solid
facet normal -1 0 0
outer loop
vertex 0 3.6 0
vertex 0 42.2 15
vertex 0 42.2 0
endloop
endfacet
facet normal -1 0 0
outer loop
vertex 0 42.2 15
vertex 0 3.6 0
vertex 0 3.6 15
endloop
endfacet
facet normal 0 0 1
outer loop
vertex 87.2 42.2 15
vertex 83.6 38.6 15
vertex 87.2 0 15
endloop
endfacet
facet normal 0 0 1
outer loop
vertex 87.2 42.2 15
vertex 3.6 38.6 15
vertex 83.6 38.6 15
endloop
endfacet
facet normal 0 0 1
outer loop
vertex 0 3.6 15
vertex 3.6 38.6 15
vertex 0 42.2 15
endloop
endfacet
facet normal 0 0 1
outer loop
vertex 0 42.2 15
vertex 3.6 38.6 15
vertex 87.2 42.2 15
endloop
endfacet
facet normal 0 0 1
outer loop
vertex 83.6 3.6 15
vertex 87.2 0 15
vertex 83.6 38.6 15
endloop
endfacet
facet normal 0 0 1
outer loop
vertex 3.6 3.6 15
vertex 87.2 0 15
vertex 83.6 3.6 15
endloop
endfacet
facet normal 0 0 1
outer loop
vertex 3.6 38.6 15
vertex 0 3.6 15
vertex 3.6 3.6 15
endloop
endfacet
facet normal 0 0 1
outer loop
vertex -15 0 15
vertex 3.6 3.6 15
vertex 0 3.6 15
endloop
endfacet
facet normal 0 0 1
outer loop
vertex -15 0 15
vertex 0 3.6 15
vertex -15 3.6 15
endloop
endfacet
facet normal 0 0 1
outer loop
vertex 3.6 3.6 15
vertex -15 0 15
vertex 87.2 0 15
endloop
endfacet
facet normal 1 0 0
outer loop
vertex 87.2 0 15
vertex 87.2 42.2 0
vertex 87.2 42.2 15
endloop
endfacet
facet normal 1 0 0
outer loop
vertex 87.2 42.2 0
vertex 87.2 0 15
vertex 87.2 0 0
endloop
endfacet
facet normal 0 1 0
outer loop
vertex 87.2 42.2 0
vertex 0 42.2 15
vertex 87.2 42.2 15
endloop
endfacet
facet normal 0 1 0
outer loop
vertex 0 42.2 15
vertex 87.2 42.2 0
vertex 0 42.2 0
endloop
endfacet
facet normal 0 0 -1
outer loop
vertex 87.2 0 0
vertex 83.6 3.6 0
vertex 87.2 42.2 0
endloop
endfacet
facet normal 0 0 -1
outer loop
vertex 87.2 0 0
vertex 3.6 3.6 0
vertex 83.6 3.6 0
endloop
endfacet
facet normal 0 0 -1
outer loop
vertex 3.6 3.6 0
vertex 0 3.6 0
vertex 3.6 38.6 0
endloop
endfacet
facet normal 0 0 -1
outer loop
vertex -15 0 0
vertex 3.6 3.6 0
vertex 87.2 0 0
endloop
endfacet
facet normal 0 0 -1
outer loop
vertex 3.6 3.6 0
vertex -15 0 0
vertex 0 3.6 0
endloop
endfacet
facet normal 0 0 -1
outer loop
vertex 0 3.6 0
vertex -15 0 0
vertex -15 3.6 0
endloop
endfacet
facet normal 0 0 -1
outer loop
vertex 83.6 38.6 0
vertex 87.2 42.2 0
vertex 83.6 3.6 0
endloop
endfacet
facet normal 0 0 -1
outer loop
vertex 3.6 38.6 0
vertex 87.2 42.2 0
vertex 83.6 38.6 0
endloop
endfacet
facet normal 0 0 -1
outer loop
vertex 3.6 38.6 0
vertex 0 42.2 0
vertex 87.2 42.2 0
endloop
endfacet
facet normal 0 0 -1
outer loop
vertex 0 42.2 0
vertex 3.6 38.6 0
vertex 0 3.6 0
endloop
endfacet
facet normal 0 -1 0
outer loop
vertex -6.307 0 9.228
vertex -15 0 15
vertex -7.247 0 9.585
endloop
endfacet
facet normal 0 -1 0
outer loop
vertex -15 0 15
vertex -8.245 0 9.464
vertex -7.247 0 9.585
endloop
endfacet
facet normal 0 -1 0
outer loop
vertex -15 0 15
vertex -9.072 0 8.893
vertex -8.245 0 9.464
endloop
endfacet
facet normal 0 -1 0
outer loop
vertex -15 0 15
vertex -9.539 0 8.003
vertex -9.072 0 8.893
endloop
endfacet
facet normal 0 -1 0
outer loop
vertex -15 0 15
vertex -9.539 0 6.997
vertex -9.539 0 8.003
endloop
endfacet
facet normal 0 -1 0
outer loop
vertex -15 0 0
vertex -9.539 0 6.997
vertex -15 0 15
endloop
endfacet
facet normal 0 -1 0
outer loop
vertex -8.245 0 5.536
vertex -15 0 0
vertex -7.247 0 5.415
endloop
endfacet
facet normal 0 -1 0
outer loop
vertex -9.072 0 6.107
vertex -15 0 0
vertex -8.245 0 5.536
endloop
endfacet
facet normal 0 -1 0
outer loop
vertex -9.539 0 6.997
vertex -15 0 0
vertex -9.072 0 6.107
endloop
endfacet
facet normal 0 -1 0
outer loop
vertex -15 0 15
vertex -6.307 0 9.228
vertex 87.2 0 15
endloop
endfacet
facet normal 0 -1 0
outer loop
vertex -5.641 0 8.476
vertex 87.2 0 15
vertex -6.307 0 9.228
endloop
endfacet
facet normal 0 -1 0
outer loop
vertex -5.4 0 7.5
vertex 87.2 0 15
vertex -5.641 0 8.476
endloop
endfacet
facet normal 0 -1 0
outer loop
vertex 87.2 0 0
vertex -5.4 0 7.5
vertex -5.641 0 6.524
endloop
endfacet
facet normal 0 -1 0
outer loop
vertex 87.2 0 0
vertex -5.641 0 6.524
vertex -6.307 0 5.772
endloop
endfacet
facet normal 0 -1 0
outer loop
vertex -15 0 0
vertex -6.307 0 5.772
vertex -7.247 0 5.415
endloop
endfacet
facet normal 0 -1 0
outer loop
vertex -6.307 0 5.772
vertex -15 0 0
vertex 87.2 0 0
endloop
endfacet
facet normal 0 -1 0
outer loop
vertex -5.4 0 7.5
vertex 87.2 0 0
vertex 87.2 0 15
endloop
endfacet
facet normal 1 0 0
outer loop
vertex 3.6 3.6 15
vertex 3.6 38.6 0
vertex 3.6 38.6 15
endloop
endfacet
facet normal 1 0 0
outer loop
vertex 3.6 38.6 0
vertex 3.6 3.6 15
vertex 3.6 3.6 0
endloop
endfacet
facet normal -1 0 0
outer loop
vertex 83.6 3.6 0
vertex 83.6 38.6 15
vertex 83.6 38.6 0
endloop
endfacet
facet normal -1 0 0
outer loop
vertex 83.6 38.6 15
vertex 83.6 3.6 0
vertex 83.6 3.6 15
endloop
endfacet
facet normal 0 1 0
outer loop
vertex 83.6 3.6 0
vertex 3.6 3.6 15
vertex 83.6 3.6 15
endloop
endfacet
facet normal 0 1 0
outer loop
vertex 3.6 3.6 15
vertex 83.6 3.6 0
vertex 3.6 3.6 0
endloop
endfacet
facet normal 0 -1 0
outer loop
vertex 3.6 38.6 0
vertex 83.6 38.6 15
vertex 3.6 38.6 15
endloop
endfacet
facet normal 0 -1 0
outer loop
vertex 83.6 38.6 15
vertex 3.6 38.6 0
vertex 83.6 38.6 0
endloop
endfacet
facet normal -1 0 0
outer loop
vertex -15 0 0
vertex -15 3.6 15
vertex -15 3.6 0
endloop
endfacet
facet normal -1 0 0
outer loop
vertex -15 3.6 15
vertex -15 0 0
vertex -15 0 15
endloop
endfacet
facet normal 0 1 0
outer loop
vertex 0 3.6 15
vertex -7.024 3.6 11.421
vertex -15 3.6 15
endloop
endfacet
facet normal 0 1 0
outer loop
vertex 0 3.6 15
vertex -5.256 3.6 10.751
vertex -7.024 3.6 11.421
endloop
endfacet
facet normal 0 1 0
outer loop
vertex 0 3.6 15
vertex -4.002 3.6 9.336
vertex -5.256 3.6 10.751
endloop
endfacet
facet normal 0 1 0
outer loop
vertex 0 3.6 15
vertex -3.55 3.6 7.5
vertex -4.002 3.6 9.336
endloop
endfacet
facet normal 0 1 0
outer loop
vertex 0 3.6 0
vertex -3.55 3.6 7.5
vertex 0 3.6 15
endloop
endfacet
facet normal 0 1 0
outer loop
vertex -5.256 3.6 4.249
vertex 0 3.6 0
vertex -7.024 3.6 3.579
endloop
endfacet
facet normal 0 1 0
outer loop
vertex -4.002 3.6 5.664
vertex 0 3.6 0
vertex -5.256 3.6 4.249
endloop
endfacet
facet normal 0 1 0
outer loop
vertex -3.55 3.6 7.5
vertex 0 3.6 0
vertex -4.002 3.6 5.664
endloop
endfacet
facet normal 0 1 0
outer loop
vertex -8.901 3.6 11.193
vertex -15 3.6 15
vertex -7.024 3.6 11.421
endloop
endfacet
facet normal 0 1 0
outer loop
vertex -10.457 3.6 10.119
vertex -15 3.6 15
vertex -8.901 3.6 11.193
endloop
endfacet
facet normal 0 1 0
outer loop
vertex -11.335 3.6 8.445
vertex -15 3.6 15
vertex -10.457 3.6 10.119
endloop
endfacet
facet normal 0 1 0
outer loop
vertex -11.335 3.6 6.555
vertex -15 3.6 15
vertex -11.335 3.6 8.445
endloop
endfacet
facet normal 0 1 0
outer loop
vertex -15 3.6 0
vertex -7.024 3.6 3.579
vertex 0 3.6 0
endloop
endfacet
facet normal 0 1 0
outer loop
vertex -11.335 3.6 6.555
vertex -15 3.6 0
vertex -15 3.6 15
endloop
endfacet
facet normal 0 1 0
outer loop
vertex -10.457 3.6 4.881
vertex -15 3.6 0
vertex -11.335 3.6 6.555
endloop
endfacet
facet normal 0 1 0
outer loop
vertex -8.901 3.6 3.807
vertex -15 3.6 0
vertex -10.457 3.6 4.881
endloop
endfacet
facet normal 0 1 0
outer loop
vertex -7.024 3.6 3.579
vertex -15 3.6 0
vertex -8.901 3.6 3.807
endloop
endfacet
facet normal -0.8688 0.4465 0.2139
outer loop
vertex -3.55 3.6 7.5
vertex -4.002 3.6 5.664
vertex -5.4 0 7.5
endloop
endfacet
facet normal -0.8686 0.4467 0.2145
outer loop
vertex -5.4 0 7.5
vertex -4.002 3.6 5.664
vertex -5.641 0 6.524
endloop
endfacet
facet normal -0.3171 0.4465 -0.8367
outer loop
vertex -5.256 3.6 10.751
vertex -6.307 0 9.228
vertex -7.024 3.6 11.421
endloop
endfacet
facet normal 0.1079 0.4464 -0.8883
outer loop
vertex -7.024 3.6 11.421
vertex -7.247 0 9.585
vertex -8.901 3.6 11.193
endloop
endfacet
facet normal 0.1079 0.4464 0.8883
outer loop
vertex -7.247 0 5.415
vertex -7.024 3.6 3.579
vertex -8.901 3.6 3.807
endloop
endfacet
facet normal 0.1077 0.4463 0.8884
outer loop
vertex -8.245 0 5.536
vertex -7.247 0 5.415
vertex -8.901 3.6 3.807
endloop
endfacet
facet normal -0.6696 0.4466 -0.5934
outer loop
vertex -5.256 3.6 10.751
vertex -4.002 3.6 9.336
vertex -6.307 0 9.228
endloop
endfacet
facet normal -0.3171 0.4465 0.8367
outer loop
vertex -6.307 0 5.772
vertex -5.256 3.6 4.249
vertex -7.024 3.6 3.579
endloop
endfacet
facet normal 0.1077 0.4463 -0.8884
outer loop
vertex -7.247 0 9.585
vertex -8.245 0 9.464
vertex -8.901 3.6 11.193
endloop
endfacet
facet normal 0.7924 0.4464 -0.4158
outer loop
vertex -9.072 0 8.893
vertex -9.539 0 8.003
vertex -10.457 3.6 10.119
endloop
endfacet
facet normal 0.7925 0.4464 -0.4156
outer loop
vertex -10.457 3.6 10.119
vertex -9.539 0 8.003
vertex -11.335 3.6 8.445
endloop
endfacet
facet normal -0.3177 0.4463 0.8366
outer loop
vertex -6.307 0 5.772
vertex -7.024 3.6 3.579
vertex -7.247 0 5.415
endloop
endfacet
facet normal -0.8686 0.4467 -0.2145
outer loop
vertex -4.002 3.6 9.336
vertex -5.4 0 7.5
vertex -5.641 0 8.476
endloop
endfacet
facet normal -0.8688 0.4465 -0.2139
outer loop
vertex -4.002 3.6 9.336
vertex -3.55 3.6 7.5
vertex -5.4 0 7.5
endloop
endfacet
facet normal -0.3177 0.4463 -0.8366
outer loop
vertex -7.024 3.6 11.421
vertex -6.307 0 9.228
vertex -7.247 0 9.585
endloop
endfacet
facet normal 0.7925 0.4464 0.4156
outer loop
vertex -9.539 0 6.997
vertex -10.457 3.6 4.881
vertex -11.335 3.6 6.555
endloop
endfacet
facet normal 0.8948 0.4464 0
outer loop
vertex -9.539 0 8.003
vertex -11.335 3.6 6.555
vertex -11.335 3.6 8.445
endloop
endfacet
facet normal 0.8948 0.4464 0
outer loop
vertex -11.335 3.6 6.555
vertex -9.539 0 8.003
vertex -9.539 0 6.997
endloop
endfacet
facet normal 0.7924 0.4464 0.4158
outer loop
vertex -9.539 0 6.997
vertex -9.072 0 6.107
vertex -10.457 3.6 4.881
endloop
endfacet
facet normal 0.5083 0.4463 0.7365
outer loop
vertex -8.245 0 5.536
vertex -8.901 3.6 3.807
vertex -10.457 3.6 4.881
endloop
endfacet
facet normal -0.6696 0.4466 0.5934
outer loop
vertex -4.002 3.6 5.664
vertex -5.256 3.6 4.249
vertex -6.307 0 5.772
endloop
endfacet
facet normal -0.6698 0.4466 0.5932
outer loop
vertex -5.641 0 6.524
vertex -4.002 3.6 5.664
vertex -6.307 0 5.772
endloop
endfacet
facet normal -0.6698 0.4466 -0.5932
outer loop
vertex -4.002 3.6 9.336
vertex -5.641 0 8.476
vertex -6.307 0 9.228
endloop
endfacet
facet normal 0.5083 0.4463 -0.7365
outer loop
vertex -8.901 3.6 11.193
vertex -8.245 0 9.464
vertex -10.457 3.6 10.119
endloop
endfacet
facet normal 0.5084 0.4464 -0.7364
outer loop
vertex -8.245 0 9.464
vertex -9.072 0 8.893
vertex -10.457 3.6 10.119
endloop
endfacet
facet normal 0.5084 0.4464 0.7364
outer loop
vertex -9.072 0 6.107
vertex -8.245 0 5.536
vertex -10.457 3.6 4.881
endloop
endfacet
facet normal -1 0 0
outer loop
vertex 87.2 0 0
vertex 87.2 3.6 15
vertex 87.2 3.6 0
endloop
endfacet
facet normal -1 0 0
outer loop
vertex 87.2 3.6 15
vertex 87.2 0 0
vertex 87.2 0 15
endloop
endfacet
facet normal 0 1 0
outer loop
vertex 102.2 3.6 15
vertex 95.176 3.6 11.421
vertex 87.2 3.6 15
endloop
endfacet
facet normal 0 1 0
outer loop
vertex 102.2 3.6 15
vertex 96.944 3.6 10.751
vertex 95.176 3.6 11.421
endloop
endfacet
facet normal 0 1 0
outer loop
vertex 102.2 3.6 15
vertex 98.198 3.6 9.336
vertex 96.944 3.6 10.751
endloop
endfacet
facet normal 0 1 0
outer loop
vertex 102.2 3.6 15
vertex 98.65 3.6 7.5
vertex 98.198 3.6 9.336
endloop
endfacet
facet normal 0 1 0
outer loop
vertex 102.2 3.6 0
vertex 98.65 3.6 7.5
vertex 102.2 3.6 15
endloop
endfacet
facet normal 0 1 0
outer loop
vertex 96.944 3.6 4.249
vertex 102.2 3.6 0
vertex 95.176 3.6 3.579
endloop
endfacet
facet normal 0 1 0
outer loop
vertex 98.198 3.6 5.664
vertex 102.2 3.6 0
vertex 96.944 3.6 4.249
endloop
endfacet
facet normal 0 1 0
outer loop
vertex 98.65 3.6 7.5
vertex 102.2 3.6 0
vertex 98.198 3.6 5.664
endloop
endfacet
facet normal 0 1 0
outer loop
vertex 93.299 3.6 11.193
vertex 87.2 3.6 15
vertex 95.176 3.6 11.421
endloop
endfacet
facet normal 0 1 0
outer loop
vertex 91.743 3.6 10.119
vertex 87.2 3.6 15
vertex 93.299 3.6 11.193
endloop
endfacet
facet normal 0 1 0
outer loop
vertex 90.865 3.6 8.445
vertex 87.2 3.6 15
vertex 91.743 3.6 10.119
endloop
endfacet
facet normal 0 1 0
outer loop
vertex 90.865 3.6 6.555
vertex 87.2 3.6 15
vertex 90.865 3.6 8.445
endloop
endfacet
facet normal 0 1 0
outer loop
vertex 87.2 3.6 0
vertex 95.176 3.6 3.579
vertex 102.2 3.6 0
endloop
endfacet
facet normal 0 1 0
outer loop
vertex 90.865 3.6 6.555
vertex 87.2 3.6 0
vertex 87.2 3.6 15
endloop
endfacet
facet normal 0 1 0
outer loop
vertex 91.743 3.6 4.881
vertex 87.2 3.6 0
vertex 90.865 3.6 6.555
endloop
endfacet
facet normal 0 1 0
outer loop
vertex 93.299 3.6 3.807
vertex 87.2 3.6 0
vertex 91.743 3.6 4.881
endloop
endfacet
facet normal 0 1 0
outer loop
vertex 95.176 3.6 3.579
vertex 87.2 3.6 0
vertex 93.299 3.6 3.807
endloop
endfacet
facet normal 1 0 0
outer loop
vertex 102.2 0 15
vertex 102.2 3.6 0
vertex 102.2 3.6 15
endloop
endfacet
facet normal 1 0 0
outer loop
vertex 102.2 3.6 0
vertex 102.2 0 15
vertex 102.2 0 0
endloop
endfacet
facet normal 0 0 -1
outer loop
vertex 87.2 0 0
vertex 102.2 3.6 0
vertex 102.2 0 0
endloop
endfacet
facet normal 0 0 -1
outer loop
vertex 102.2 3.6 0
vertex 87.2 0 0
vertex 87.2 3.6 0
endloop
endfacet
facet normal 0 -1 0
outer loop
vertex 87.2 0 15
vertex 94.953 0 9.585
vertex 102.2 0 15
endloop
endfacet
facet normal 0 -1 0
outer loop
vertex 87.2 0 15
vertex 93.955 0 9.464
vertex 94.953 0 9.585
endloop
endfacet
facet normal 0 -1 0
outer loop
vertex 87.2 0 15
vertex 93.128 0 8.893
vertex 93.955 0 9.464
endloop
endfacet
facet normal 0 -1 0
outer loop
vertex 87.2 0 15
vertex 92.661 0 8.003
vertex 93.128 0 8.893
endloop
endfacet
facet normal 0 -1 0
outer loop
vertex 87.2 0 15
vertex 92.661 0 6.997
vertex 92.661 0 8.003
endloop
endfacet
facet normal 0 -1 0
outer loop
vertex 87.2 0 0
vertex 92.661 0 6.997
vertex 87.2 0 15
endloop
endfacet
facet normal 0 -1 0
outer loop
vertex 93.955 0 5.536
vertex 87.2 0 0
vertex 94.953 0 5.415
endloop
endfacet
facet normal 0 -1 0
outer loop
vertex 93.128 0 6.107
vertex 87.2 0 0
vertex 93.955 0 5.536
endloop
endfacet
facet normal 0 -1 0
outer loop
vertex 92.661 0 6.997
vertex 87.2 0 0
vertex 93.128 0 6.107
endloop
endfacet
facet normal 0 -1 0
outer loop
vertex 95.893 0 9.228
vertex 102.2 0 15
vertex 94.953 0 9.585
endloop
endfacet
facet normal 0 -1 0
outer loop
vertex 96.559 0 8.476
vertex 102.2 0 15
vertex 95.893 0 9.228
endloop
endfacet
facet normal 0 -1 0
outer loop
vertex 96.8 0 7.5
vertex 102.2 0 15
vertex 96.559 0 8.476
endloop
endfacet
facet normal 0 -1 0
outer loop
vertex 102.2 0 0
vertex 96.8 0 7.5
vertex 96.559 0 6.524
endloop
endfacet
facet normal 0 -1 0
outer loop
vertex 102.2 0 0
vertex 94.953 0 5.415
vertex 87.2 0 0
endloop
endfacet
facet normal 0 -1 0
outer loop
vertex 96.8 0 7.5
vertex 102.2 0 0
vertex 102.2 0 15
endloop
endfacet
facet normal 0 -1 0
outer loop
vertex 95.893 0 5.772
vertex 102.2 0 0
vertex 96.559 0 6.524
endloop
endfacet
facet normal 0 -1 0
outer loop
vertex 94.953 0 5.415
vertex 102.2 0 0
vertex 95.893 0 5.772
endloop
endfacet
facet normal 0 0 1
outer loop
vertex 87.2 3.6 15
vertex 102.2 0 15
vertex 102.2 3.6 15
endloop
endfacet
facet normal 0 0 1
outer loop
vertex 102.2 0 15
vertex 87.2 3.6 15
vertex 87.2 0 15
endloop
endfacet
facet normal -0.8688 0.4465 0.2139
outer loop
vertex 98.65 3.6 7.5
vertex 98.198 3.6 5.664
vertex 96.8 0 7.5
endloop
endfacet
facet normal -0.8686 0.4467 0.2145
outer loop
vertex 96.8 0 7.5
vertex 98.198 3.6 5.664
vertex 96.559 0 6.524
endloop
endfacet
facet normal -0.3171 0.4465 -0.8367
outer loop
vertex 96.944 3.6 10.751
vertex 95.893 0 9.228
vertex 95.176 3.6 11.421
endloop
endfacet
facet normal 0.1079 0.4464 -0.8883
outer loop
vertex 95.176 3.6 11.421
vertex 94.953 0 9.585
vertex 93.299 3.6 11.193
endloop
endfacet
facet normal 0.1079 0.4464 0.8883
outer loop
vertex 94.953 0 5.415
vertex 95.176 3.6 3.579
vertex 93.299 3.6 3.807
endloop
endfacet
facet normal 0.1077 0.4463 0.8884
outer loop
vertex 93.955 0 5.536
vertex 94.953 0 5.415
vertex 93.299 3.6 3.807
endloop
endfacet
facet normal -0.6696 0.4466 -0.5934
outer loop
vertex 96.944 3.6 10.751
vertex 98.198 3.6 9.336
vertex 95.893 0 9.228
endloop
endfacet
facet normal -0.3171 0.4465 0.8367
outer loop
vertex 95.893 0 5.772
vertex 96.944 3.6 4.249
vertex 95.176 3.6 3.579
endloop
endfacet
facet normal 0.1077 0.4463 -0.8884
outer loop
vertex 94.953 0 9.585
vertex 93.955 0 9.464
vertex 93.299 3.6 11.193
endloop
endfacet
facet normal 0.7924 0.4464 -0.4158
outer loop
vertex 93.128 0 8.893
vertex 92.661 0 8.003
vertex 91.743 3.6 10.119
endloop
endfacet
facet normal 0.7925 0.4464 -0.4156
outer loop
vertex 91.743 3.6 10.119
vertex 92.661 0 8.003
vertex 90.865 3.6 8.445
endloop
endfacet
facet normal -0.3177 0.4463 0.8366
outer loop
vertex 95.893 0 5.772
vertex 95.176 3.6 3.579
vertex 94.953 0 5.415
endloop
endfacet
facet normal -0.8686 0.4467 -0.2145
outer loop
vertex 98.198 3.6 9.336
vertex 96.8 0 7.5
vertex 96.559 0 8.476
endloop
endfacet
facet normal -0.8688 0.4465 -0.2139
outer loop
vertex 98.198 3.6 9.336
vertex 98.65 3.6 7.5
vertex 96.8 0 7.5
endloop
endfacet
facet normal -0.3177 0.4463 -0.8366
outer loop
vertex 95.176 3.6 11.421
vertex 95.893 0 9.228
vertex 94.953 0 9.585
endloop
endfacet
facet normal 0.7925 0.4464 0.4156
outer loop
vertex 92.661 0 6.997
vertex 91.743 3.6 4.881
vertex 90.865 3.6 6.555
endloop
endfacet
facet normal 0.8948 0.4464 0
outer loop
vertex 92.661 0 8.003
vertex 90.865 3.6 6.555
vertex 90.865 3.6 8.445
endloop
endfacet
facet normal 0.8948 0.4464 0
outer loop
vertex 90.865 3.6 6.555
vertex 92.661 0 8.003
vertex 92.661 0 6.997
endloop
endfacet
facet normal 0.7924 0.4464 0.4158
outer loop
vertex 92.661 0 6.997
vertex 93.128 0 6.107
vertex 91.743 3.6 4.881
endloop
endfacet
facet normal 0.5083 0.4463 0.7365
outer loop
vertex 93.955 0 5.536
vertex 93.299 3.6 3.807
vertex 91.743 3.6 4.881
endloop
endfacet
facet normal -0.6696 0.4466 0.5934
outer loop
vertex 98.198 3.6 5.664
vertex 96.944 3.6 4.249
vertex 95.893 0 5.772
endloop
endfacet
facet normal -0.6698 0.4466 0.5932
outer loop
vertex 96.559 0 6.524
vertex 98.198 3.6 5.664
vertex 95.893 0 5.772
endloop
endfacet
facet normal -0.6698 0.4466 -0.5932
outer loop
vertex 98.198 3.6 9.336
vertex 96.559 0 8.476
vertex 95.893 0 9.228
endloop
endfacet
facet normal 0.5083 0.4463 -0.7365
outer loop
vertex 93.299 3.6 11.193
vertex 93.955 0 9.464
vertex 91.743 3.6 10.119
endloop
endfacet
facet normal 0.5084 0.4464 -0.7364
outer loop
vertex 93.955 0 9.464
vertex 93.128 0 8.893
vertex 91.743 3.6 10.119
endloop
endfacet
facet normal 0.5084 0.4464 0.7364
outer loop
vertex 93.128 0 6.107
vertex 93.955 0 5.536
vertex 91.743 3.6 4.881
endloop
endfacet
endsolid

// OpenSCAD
thickness=3.6;
2thickness=thickness*2;

screw_d=4.2;
counter_sink=7.9;

length=80;
width=35;
height=15;

module screw_tab() {
    difference() {
        cube([height, height, thickness]);
        translate([height/2, height/2, 0])cylinder(thickness, d1=screw_d, d2=counter_sink);
    }
}
    

difference() {
    cube([length+2thickness, width+2thickness, height]);
    translate([thickness, thickness, 0])cube([length, width, height]);
}

translate([-height, 0, height])
    rotate([-90, 0, 0])
    screw_tab();

translate([length+2thickness, 0, height])
    rotate([-90, 0, 0])
    screw_tab();
